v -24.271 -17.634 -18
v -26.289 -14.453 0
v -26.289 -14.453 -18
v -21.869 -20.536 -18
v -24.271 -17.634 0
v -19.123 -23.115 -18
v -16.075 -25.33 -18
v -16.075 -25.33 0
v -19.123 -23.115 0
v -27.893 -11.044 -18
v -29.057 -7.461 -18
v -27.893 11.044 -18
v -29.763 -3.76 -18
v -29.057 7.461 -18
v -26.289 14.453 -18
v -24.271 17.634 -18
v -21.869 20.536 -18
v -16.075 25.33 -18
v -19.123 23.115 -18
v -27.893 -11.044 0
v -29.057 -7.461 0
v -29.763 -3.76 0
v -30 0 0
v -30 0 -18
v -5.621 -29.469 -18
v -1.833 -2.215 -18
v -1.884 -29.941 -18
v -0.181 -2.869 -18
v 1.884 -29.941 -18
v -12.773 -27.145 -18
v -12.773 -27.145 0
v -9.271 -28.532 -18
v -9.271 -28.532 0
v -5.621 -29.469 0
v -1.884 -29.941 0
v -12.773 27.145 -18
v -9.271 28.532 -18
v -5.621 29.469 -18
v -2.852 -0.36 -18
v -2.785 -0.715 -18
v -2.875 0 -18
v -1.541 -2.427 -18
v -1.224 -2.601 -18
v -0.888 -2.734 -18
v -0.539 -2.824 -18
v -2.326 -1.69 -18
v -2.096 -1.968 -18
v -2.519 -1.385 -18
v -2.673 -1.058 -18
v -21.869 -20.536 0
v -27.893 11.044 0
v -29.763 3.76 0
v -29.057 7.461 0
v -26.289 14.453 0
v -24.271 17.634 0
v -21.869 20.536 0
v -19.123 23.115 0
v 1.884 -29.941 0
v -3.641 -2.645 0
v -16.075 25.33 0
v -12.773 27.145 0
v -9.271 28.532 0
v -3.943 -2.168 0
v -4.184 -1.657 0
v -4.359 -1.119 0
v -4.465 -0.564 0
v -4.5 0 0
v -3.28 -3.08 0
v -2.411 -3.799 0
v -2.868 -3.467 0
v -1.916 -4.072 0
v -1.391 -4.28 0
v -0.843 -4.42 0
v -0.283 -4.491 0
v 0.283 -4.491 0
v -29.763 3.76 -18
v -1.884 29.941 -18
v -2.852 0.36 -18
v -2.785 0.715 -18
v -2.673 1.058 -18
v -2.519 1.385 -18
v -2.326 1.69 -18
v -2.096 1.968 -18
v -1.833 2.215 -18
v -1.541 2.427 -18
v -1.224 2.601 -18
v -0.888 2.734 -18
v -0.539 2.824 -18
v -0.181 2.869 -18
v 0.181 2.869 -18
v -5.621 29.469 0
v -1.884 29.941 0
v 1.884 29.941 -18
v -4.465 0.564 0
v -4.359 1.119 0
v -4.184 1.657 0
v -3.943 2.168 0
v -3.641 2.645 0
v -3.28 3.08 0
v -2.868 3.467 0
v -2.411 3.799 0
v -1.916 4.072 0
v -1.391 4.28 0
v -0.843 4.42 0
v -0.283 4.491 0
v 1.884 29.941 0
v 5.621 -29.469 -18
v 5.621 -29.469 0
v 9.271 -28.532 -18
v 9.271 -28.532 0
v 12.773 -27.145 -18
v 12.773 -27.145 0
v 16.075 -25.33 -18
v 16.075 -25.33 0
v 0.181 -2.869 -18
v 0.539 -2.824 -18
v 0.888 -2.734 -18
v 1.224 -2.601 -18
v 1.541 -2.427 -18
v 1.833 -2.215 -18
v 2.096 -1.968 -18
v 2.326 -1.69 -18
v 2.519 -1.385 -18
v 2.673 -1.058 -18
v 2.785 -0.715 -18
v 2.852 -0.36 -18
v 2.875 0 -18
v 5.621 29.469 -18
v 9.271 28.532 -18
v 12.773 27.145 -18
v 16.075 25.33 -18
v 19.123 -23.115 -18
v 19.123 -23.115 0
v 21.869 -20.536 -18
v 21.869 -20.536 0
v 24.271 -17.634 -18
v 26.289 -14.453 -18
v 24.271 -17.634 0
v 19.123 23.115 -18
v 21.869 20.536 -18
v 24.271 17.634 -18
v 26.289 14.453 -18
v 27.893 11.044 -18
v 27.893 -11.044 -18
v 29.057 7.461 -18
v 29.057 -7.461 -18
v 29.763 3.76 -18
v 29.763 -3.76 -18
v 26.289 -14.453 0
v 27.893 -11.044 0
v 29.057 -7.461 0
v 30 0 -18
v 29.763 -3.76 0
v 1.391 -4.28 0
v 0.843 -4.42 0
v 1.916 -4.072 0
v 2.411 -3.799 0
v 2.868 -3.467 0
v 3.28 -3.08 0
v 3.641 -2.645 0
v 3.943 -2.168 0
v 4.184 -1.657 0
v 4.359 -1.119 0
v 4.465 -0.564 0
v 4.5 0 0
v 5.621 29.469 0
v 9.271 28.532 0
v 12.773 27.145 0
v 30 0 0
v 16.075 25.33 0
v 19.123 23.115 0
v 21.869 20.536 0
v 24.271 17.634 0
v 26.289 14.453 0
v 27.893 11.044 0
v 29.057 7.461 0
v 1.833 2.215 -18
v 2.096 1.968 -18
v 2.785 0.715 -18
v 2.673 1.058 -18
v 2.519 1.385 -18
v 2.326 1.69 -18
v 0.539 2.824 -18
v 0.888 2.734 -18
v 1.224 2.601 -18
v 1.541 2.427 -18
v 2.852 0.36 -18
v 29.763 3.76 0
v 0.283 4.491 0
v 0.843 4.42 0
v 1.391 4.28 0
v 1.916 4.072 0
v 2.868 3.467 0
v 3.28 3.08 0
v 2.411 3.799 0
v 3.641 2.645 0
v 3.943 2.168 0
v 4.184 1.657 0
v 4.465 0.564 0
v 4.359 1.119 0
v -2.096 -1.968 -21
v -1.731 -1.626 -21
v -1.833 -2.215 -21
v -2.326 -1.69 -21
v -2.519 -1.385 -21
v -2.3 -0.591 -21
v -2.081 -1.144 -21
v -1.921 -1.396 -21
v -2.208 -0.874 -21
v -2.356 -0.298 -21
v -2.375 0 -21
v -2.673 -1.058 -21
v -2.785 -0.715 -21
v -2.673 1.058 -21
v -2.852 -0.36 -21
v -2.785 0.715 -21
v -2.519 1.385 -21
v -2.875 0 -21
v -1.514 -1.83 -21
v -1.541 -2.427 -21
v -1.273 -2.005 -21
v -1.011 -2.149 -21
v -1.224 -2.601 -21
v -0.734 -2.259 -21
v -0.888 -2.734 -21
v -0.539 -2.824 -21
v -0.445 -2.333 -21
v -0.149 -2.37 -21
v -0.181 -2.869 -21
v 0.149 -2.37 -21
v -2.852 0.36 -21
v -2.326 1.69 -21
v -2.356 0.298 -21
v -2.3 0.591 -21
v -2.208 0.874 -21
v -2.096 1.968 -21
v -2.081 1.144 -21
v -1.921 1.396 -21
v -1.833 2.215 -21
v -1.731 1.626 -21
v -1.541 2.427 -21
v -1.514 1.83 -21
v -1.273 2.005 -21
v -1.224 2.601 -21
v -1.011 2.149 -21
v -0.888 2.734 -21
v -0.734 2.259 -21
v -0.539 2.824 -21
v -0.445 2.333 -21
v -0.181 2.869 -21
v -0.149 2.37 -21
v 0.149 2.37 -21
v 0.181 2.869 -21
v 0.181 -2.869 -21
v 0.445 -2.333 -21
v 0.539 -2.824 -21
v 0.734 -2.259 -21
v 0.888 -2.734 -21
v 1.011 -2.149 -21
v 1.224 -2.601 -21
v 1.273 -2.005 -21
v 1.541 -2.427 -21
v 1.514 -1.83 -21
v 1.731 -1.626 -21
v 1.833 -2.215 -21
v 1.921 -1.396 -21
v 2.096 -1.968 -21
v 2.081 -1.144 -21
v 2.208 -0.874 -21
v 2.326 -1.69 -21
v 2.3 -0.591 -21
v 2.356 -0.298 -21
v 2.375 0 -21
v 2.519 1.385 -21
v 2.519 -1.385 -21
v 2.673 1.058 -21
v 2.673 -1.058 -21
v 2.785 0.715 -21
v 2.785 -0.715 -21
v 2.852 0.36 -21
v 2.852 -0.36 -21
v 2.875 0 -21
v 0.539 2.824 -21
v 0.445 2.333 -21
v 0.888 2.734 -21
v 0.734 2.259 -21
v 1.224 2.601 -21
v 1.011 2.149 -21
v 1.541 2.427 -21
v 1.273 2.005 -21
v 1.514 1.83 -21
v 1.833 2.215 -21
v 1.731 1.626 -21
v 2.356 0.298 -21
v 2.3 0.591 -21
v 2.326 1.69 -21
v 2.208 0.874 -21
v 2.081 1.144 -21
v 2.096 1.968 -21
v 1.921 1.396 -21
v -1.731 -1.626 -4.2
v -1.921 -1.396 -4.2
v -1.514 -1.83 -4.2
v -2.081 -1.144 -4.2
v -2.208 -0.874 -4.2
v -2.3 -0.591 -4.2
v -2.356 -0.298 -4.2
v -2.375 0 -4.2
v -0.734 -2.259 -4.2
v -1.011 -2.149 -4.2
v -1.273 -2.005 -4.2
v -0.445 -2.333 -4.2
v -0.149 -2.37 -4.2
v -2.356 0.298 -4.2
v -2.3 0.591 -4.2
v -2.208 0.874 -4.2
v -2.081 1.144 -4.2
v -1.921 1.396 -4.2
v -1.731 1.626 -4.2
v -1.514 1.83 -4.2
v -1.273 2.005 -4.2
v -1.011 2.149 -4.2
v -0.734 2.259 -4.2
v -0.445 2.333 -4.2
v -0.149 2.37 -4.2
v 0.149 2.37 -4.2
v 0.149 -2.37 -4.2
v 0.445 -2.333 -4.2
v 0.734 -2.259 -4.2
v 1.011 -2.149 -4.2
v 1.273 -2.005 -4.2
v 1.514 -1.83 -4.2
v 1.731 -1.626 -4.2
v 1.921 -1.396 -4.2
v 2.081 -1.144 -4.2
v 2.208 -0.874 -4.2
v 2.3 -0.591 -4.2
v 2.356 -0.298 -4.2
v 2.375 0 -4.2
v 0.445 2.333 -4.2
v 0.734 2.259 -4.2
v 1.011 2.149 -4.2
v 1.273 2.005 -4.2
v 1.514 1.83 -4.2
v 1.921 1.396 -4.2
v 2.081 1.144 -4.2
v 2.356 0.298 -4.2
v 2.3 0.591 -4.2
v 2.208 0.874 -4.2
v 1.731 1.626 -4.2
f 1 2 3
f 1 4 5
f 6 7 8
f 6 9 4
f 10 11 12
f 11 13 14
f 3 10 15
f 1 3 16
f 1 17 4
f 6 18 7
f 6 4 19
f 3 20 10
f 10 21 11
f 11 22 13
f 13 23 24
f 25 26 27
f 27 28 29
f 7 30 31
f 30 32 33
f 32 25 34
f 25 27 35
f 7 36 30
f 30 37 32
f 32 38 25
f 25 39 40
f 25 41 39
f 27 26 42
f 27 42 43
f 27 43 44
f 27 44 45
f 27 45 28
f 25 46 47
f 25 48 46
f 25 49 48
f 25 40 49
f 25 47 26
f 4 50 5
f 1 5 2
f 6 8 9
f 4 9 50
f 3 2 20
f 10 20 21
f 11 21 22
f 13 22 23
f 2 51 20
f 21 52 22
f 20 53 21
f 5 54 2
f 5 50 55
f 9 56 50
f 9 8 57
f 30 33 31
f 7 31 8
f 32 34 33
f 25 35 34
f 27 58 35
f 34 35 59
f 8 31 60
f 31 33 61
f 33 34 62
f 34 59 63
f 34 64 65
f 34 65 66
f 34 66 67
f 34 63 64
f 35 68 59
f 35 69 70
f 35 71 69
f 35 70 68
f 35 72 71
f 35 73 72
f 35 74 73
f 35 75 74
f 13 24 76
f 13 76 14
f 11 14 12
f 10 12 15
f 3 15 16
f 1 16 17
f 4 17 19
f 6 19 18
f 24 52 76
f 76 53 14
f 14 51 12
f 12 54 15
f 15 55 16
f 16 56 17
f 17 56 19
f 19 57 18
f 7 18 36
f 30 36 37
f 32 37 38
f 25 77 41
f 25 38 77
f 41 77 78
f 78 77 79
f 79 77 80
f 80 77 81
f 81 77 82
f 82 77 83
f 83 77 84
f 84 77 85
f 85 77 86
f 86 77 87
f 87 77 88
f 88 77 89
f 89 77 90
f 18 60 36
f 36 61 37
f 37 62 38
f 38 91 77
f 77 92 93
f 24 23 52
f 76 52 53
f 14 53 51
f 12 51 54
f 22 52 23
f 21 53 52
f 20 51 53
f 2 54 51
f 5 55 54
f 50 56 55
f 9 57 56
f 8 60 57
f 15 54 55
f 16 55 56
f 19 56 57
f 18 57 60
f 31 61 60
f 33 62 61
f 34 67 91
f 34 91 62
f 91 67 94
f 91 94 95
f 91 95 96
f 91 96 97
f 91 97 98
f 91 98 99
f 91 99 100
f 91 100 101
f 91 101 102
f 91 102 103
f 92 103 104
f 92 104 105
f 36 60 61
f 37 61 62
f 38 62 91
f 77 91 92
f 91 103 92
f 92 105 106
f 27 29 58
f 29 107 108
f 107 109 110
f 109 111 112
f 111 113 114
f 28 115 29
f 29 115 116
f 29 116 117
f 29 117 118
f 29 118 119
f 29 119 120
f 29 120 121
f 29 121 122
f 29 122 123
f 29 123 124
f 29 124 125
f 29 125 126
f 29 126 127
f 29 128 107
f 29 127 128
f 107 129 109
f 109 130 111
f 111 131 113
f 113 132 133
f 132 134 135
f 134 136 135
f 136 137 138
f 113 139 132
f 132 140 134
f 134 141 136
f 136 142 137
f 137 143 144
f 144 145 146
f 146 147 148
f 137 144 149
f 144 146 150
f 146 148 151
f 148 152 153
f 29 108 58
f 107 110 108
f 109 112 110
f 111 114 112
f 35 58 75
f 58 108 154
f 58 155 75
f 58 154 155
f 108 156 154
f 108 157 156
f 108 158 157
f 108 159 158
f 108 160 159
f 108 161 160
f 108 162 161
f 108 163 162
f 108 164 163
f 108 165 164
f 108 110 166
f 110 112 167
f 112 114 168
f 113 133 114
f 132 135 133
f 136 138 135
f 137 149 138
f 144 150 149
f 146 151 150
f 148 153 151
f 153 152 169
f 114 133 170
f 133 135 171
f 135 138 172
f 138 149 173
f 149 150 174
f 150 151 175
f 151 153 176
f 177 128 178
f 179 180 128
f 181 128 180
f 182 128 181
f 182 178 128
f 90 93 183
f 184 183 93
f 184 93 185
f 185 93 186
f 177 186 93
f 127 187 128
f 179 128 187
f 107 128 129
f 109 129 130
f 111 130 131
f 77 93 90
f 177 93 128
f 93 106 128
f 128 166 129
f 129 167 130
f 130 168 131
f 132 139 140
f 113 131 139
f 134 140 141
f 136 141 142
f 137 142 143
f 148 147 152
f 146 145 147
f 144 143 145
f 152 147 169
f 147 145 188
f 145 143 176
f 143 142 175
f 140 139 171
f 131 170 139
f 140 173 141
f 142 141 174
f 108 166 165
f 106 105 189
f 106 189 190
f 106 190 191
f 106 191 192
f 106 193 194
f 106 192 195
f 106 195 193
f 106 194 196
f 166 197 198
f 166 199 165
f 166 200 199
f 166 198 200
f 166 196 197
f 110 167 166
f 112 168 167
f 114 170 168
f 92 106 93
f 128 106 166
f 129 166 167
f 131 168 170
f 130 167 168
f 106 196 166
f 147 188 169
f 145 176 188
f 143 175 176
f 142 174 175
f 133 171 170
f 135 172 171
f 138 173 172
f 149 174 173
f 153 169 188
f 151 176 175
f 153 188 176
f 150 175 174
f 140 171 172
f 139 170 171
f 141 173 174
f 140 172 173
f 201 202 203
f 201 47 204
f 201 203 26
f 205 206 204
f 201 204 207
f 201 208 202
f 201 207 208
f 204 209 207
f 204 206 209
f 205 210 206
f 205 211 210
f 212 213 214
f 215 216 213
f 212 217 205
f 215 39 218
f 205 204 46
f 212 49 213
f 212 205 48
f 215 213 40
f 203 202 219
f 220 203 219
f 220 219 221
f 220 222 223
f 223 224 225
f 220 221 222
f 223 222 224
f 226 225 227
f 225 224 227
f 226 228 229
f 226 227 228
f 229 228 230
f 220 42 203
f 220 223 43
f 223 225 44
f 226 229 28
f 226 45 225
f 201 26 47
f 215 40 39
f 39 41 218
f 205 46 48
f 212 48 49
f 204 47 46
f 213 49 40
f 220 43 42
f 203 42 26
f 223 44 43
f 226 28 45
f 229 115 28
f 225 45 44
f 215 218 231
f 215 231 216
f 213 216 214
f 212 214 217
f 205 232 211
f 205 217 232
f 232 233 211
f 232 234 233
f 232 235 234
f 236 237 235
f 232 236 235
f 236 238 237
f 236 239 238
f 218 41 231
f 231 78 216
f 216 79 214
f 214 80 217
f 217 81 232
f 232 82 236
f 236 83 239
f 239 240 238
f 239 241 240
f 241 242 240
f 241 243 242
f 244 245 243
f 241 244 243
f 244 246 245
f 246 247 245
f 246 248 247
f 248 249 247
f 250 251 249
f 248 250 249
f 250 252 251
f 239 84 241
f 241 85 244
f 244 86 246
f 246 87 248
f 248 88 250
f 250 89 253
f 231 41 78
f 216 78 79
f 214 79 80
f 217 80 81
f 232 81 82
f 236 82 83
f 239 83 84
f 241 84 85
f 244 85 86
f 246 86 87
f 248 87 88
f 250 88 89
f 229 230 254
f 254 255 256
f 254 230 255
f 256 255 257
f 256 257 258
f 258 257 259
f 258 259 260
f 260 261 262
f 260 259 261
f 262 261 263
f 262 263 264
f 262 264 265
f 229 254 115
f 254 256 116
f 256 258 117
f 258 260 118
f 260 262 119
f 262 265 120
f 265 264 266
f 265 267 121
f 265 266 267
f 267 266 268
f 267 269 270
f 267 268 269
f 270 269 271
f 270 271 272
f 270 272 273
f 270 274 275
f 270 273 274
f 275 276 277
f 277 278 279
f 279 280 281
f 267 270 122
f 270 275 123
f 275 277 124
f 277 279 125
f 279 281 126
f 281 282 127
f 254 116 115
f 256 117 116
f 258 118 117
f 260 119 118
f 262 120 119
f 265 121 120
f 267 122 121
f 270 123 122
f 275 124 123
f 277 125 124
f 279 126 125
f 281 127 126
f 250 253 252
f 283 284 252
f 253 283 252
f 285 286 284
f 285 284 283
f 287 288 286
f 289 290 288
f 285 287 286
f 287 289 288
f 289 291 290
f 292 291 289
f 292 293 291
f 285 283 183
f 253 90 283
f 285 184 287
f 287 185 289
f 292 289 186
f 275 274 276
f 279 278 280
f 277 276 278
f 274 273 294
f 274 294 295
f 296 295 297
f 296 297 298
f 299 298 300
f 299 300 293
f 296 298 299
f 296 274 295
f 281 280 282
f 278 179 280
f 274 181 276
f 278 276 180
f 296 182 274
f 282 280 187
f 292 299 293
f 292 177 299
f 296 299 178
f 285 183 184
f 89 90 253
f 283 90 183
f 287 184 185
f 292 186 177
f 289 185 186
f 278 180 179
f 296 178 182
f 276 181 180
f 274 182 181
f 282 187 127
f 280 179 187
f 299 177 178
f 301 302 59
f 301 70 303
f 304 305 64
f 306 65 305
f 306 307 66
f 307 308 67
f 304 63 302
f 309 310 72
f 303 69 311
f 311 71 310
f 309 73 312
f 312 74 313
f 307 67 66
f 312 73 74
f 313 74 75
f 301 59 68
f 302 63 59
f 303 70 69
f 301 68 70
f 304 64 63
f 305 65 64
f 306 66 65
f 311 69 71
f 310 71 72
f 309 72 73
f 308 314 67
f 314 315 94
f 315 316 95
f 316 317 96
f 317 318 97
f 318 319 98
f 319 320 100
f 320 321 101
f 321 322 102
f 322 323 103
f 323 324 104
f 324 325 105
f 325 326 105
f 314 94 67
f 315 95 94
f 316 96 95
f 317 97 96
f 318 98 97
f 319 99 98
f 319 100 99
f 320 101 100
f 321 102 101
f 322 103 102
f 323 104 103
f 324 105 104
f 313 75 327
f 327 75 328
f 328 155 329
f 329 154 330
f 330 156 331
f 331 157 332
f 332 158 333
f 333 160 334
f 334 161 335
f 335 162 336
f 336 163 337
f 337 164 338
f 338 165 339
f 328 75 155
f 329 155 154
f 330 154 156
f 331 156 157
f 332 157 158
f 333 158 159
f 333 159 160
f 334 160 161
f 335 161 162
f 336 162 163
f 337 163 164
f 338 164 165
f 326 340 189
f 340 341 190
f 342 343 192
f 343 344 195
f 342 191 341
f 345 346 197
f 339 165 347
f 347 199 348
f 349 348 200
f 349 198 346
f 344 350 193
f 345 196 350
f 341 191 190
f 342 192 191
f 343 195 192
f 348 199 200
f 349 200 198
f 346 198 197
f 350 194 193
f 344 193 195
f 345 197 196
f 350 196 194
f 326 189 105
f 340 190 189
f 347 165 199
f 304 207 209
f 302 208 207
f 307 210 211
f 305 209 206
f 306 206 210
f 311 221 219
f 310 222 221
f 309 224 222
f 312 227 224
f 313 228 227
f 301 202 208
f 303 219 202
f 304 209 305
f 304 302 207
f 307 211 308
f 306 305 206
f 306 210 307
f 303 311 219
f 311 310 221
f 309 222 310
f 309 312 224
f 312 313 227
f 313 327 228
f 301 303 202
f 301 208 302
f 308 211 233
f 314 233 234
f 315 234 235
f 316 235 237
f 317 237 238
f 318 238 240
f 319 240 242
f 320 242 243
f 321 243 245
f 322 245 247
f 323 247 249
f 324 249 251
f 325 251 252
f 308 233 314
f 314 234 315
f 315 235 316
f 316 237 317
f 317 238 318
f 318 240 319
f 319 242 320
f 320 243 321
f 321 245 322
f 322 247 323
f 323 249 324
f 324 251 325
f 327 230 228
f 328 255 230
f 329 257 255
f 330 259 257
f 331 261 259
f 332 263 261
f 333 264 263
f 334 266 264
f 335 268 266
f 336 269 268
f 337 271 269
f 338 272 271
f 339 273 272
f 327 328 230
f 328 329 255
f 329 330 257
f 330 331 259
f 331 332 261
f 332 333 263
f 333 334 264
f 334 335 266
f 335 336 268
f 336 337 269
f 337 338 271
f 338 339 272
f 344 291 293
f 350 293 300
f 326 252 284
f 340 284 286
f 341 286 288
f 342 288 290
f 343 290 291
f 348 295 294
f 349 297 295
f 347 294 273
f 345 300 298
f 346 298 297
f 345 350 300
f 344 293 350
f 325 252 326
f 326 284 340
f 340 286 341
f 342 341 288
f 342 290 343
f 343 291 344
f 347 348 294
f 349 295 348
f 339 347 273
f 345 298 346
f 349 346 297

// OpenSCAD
$fn = 50;

difference() {
	union() {
		translate(v = [0, 0, -18.0]) {
			cylinder(h = 18, r = 30.0);
		}
		#translate(v = [0, 0, -21.0]) {
			cylinder(h = 21, r = 2.875);
		}
	}
	union() {
		translate(v = [0, 0, 0]) {
			rotate(a = [0, 0, 0]) {
				difference() {
					union() {
						translate(v = [0, 0, -21.0]) {
							cylinder(h = 21, r = 2.25);
						}
						translate(v = [0, 0, -4.2]) {
							cylinder(h = 4.2, r1 = 2.375, r2 = 4.5);
						}
						translate(v = [0, 0, -21.0]) {
							cylinder(h = 21, r = 2.375);
						}
						translate(v = [0, 0, -21.0]) {
							cylinder(h = 21, r = 2.25);
						}
					}
					union();
				}
			}
		}
	}
}
